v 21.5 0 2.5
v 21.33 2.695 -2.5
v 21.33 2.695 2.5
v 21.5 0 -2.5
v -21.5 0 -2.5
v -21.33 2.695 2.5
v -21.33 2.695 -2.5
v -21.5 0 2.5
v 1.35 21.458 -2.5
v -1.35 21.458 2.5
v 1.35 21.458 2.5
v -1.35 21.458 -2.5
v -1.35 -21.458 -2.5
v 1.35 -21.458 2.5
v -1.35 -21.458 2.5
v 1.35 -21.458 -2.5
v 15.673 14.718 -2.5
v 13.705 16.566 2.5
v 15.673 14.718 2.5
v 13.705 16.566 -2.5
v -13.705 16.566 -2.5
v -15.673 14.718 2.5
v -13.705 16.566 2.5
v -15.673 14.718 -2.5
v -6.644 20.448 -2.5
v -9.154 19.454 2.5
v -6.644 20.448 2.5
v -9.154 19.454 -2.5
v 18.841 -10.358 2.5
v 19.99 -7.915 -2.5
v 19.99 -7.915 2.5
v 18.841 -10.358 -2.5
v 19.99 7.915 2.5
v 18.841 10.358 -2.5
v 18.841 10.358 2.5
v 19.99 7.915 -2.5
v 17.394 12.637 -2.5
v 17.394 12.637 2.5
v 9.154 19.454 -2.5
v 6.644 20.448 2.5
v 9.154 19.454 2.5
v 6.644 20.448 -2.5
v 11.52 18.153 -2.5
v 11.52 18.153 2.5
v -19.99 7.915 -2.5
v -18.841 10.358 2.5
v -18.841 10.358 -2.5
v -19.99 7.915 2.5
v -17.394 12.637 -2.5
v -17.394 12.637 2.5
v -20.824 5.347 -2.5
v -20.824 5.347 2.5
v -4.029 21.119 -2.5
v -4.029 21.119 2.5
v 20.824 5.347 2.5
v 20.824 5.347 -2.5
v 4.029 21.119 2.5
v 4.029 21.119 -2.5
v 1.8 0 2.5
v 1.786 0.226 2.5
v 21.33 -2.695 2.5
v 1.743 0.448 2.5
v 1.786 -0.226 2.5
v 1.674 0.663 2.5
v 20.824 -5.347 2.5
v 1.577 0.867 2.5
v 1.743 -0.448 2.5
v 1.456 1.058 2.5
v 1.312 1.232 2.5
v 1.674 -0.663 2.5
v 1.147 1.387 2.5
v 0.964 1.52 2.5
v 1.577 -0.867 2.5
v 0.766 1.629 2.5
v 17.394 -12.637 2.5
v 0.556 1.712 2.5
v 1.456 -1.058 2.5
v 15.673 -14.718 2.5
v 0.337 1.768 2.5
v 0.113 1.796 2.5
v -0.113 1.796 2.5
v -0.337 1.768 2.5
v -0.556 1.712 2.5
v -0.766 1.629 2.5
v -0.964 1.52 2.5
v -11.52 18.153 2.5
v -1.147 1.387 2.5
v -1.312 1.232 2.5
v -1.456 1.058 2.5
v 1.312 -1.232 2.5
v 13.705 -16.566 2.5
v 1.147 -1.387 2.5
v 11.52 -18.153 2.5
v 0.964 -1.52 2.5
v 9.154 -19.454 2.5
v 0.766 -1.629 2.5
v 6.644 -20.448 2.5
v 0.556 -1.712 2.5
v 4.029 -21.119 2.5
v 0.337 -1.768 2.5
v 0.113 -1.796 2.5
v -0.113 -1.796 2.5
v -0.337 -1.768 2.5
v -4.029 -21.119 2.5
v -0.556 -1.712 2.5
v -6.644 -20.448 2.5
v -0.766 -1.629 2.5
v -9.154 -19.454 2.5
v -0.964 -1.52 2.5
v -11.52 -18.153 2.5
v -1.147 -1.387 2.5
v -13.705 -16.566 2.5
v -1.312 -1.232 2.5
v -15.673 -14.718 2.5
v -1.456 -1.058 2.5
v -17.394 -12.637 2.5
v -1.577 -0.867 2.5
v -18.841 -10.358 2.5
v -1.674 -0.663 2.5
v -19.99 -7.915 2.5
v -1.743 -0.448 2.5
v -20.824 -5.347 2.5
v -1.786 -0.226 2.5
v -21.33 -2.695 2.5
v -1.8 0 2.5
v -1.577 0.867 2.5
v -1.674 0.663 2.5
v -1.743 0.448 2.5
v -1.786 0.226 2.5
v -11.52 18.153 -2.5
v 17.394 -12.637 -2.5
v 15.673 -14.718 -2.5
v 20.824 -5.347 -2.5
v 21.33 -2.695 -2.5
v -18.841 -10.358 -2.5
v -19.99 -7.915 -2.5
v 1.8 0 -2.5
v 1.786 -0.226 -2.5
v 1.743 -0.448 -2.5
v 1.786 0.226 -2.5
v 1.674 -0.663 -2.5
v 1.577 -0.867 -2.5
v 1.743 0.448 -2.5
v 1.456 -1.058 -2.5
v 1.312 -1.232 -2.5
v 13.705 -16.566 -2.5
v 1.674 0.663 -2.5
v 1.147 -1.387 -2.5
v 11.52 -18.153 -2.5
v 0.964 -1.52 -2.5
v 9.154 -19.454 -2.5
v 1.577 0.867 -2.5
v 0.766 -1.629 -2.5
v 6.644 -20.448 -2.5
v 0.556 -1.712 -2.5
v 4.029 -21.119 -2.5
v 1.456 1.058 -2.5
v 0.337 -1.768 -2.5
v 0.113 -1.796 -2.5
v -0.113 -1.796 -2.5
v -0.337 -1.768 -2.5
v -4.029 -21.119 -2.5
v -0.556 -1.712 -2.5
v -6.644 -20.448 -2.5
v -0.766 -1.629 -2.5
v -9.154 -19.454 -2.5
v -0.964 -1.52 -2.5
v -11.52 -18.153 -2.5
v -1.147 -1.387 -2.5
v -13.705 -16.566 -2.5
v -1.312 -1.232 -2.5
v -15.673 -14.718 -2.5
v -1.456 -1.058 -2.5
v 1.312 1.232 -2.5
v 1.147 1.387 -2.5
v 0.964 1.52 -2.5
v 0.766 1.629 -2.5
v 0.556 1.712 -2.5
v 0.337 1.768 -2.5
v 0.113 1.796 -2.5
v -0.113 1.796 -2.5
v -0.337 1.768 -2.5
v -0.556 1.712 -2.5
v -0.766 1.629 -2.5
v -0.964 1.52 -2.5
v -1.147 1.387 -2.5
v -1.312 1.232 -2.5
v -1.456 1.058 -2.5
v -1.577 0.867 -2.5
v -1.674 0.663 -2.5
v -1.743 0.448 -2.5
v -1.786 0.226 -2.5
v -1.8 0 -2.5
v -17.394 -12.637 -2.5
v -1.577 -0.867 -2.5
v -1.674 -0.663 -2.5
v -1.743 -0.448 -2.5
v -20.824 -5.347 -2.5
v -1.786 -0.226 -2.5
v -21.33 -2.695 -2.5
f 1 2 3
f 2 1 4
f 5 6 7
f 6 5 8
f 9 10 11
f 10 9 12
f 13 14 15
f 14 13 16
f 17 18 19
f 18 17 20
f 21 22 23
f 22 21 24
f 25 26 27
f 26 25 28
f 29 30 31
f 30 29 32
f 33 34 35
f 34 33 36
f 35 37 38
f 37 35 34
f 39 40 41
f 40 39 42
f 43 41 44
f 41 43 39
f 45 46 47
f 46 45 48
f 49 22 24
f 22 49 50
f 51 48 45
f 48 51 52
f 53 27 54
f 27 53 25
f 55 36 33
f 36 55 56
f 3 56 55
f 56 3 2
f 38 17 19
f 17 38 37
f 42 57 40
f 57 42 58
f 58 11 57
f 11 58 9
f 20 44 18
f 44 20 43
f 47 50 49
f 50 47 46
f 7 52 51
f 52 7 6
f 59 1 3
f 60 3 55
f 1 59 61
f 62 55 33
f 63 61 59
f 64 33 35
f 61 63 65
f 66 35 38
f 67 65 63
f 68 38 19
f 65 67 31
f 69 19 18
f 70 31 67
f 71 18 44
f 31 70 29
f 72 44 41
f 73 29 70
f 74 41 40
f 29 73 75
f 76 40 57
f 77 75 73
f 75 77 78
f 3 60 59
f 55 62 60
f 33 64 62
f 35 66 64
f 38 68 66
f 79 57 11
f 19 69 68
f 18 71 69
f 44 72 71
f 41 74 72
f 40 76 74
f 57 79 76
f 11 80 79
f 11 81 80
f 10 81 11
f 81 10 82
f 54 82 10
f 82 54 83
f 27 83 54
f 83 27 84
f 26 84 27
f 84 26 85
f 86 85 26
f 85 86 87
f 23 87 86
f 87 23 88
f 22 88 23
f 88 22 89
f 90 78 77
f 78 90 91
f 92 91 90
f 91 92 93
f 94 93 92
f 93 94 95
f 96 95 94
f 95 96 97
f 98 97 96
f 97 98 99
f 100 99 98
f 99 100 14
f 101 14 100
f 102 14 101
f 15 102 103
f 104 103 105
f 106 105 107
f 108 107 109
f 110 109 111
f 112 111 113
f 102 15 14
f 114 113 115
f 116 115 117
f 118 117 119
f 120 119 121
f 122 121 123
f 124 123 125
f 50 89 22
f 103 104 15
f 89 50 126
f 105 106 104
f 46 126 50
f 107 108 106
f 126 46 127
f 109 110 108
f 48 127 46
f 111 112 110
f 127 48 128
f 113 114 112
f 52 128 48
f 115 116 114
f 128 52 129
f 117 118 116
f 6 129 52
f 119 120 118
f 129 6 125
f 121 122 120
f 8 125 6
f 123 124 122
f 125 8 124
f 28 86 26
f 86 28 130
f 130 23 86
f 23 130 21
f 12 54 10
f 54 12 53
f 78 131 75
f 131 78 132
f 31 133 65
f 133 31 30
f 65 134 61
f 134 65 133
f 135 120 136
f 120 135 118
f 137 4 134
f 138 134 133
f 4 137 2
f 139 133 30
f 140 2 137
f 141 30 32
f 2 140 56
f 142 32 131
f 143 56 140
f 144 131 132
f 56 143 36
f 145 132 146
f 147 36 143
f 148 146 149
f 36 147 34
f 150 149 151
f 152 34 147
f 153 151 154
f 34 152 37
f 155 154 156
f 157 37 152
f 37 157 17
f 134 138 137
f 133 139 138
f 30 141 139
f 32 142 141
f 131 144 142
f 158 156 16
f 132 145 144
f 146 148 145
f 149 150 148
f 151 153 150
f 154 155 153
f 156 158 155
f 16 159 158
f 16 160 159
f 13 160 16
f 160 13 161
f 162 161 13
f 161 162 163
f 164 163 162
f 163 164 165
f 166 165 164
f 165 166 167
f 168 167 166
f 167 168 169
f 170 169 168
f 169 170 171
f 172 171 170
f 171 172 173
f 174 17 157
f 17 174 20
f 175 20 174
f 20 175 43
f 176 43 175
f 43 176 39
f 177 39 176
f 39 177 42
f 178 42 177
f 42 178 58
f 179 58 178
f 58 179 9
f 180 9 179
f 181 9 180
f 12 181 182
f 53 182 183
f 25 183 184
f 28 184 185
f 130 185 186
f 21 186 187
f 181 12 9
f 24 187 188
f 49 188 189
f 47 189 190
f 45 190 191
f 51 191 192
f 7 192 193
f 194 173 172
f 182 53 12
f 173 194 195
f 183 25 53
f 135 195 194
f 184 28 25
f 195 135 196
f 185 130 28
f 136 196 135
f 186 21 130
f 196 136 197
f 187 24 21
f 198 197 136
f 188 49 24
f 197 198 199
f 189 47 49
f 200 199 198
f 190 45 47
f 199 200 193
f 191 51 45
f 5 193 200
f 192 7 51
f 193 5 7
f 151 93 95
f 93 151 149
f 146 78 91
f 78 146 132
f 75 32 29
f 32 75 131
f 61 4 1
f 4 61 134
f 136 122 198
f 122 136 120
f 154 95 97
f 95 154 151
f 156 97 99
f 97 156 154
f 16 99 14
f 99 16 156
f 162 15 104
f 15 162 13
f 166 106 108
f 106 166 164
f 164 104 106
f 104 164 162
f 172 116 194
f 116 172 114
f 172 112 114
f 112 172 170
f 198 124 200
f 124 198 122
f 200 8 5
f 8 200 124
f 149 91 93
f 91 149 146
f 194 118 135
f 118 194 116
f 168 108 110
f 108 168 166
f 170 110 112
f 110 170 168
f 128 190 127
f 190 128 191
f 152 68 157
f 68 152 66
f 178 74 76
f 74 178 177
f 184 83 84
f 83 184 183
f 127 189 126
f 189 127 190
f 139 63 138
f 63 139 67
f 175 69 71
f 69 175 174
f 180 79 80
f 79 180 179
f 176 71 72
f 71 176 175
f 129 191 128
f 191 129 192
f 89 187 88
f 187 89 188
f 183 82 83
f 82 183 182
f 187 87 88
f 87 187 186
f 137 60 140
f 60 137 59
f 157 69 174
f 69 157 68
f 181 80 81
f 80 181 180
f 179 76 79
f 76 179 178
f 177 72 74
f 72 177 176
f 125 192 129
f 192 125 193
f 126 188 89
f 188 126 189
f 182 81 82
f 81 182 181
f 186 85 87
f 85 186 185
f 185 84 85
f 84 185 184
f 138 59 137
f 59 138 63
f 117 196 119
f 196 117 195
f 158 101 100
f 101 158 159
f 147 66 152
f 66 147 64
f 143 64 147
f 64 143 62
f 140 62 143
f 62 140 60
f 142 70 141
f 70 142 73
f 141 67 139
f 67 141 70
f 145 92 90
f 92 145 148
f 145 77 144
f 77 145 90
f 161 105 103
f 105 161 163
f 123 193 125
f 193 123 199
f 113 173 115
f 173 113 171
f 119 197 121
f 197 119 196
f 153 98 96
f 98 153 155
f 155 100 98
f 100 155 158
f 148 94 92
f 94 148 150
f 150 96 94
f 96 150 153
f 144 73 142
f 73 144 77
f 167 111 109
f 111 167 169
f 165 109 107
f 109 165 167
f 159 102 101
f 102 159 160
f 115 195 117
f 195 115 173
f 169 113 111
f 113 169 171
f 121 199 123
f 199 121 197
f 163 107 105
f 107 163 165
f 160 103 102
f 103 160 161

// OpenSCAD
$fn = 50;


difference() {
	union() {
		translate(v = [0, 0, -2.5000000000]) {
			cylinder(h = 5, r = 21.5000000000);
		}
	}
	union() {
		translate(v = [0, 0, -100.0000000000]) {
			cylinder(h = 200, r = 1.8000000000);
		}
	}
}
